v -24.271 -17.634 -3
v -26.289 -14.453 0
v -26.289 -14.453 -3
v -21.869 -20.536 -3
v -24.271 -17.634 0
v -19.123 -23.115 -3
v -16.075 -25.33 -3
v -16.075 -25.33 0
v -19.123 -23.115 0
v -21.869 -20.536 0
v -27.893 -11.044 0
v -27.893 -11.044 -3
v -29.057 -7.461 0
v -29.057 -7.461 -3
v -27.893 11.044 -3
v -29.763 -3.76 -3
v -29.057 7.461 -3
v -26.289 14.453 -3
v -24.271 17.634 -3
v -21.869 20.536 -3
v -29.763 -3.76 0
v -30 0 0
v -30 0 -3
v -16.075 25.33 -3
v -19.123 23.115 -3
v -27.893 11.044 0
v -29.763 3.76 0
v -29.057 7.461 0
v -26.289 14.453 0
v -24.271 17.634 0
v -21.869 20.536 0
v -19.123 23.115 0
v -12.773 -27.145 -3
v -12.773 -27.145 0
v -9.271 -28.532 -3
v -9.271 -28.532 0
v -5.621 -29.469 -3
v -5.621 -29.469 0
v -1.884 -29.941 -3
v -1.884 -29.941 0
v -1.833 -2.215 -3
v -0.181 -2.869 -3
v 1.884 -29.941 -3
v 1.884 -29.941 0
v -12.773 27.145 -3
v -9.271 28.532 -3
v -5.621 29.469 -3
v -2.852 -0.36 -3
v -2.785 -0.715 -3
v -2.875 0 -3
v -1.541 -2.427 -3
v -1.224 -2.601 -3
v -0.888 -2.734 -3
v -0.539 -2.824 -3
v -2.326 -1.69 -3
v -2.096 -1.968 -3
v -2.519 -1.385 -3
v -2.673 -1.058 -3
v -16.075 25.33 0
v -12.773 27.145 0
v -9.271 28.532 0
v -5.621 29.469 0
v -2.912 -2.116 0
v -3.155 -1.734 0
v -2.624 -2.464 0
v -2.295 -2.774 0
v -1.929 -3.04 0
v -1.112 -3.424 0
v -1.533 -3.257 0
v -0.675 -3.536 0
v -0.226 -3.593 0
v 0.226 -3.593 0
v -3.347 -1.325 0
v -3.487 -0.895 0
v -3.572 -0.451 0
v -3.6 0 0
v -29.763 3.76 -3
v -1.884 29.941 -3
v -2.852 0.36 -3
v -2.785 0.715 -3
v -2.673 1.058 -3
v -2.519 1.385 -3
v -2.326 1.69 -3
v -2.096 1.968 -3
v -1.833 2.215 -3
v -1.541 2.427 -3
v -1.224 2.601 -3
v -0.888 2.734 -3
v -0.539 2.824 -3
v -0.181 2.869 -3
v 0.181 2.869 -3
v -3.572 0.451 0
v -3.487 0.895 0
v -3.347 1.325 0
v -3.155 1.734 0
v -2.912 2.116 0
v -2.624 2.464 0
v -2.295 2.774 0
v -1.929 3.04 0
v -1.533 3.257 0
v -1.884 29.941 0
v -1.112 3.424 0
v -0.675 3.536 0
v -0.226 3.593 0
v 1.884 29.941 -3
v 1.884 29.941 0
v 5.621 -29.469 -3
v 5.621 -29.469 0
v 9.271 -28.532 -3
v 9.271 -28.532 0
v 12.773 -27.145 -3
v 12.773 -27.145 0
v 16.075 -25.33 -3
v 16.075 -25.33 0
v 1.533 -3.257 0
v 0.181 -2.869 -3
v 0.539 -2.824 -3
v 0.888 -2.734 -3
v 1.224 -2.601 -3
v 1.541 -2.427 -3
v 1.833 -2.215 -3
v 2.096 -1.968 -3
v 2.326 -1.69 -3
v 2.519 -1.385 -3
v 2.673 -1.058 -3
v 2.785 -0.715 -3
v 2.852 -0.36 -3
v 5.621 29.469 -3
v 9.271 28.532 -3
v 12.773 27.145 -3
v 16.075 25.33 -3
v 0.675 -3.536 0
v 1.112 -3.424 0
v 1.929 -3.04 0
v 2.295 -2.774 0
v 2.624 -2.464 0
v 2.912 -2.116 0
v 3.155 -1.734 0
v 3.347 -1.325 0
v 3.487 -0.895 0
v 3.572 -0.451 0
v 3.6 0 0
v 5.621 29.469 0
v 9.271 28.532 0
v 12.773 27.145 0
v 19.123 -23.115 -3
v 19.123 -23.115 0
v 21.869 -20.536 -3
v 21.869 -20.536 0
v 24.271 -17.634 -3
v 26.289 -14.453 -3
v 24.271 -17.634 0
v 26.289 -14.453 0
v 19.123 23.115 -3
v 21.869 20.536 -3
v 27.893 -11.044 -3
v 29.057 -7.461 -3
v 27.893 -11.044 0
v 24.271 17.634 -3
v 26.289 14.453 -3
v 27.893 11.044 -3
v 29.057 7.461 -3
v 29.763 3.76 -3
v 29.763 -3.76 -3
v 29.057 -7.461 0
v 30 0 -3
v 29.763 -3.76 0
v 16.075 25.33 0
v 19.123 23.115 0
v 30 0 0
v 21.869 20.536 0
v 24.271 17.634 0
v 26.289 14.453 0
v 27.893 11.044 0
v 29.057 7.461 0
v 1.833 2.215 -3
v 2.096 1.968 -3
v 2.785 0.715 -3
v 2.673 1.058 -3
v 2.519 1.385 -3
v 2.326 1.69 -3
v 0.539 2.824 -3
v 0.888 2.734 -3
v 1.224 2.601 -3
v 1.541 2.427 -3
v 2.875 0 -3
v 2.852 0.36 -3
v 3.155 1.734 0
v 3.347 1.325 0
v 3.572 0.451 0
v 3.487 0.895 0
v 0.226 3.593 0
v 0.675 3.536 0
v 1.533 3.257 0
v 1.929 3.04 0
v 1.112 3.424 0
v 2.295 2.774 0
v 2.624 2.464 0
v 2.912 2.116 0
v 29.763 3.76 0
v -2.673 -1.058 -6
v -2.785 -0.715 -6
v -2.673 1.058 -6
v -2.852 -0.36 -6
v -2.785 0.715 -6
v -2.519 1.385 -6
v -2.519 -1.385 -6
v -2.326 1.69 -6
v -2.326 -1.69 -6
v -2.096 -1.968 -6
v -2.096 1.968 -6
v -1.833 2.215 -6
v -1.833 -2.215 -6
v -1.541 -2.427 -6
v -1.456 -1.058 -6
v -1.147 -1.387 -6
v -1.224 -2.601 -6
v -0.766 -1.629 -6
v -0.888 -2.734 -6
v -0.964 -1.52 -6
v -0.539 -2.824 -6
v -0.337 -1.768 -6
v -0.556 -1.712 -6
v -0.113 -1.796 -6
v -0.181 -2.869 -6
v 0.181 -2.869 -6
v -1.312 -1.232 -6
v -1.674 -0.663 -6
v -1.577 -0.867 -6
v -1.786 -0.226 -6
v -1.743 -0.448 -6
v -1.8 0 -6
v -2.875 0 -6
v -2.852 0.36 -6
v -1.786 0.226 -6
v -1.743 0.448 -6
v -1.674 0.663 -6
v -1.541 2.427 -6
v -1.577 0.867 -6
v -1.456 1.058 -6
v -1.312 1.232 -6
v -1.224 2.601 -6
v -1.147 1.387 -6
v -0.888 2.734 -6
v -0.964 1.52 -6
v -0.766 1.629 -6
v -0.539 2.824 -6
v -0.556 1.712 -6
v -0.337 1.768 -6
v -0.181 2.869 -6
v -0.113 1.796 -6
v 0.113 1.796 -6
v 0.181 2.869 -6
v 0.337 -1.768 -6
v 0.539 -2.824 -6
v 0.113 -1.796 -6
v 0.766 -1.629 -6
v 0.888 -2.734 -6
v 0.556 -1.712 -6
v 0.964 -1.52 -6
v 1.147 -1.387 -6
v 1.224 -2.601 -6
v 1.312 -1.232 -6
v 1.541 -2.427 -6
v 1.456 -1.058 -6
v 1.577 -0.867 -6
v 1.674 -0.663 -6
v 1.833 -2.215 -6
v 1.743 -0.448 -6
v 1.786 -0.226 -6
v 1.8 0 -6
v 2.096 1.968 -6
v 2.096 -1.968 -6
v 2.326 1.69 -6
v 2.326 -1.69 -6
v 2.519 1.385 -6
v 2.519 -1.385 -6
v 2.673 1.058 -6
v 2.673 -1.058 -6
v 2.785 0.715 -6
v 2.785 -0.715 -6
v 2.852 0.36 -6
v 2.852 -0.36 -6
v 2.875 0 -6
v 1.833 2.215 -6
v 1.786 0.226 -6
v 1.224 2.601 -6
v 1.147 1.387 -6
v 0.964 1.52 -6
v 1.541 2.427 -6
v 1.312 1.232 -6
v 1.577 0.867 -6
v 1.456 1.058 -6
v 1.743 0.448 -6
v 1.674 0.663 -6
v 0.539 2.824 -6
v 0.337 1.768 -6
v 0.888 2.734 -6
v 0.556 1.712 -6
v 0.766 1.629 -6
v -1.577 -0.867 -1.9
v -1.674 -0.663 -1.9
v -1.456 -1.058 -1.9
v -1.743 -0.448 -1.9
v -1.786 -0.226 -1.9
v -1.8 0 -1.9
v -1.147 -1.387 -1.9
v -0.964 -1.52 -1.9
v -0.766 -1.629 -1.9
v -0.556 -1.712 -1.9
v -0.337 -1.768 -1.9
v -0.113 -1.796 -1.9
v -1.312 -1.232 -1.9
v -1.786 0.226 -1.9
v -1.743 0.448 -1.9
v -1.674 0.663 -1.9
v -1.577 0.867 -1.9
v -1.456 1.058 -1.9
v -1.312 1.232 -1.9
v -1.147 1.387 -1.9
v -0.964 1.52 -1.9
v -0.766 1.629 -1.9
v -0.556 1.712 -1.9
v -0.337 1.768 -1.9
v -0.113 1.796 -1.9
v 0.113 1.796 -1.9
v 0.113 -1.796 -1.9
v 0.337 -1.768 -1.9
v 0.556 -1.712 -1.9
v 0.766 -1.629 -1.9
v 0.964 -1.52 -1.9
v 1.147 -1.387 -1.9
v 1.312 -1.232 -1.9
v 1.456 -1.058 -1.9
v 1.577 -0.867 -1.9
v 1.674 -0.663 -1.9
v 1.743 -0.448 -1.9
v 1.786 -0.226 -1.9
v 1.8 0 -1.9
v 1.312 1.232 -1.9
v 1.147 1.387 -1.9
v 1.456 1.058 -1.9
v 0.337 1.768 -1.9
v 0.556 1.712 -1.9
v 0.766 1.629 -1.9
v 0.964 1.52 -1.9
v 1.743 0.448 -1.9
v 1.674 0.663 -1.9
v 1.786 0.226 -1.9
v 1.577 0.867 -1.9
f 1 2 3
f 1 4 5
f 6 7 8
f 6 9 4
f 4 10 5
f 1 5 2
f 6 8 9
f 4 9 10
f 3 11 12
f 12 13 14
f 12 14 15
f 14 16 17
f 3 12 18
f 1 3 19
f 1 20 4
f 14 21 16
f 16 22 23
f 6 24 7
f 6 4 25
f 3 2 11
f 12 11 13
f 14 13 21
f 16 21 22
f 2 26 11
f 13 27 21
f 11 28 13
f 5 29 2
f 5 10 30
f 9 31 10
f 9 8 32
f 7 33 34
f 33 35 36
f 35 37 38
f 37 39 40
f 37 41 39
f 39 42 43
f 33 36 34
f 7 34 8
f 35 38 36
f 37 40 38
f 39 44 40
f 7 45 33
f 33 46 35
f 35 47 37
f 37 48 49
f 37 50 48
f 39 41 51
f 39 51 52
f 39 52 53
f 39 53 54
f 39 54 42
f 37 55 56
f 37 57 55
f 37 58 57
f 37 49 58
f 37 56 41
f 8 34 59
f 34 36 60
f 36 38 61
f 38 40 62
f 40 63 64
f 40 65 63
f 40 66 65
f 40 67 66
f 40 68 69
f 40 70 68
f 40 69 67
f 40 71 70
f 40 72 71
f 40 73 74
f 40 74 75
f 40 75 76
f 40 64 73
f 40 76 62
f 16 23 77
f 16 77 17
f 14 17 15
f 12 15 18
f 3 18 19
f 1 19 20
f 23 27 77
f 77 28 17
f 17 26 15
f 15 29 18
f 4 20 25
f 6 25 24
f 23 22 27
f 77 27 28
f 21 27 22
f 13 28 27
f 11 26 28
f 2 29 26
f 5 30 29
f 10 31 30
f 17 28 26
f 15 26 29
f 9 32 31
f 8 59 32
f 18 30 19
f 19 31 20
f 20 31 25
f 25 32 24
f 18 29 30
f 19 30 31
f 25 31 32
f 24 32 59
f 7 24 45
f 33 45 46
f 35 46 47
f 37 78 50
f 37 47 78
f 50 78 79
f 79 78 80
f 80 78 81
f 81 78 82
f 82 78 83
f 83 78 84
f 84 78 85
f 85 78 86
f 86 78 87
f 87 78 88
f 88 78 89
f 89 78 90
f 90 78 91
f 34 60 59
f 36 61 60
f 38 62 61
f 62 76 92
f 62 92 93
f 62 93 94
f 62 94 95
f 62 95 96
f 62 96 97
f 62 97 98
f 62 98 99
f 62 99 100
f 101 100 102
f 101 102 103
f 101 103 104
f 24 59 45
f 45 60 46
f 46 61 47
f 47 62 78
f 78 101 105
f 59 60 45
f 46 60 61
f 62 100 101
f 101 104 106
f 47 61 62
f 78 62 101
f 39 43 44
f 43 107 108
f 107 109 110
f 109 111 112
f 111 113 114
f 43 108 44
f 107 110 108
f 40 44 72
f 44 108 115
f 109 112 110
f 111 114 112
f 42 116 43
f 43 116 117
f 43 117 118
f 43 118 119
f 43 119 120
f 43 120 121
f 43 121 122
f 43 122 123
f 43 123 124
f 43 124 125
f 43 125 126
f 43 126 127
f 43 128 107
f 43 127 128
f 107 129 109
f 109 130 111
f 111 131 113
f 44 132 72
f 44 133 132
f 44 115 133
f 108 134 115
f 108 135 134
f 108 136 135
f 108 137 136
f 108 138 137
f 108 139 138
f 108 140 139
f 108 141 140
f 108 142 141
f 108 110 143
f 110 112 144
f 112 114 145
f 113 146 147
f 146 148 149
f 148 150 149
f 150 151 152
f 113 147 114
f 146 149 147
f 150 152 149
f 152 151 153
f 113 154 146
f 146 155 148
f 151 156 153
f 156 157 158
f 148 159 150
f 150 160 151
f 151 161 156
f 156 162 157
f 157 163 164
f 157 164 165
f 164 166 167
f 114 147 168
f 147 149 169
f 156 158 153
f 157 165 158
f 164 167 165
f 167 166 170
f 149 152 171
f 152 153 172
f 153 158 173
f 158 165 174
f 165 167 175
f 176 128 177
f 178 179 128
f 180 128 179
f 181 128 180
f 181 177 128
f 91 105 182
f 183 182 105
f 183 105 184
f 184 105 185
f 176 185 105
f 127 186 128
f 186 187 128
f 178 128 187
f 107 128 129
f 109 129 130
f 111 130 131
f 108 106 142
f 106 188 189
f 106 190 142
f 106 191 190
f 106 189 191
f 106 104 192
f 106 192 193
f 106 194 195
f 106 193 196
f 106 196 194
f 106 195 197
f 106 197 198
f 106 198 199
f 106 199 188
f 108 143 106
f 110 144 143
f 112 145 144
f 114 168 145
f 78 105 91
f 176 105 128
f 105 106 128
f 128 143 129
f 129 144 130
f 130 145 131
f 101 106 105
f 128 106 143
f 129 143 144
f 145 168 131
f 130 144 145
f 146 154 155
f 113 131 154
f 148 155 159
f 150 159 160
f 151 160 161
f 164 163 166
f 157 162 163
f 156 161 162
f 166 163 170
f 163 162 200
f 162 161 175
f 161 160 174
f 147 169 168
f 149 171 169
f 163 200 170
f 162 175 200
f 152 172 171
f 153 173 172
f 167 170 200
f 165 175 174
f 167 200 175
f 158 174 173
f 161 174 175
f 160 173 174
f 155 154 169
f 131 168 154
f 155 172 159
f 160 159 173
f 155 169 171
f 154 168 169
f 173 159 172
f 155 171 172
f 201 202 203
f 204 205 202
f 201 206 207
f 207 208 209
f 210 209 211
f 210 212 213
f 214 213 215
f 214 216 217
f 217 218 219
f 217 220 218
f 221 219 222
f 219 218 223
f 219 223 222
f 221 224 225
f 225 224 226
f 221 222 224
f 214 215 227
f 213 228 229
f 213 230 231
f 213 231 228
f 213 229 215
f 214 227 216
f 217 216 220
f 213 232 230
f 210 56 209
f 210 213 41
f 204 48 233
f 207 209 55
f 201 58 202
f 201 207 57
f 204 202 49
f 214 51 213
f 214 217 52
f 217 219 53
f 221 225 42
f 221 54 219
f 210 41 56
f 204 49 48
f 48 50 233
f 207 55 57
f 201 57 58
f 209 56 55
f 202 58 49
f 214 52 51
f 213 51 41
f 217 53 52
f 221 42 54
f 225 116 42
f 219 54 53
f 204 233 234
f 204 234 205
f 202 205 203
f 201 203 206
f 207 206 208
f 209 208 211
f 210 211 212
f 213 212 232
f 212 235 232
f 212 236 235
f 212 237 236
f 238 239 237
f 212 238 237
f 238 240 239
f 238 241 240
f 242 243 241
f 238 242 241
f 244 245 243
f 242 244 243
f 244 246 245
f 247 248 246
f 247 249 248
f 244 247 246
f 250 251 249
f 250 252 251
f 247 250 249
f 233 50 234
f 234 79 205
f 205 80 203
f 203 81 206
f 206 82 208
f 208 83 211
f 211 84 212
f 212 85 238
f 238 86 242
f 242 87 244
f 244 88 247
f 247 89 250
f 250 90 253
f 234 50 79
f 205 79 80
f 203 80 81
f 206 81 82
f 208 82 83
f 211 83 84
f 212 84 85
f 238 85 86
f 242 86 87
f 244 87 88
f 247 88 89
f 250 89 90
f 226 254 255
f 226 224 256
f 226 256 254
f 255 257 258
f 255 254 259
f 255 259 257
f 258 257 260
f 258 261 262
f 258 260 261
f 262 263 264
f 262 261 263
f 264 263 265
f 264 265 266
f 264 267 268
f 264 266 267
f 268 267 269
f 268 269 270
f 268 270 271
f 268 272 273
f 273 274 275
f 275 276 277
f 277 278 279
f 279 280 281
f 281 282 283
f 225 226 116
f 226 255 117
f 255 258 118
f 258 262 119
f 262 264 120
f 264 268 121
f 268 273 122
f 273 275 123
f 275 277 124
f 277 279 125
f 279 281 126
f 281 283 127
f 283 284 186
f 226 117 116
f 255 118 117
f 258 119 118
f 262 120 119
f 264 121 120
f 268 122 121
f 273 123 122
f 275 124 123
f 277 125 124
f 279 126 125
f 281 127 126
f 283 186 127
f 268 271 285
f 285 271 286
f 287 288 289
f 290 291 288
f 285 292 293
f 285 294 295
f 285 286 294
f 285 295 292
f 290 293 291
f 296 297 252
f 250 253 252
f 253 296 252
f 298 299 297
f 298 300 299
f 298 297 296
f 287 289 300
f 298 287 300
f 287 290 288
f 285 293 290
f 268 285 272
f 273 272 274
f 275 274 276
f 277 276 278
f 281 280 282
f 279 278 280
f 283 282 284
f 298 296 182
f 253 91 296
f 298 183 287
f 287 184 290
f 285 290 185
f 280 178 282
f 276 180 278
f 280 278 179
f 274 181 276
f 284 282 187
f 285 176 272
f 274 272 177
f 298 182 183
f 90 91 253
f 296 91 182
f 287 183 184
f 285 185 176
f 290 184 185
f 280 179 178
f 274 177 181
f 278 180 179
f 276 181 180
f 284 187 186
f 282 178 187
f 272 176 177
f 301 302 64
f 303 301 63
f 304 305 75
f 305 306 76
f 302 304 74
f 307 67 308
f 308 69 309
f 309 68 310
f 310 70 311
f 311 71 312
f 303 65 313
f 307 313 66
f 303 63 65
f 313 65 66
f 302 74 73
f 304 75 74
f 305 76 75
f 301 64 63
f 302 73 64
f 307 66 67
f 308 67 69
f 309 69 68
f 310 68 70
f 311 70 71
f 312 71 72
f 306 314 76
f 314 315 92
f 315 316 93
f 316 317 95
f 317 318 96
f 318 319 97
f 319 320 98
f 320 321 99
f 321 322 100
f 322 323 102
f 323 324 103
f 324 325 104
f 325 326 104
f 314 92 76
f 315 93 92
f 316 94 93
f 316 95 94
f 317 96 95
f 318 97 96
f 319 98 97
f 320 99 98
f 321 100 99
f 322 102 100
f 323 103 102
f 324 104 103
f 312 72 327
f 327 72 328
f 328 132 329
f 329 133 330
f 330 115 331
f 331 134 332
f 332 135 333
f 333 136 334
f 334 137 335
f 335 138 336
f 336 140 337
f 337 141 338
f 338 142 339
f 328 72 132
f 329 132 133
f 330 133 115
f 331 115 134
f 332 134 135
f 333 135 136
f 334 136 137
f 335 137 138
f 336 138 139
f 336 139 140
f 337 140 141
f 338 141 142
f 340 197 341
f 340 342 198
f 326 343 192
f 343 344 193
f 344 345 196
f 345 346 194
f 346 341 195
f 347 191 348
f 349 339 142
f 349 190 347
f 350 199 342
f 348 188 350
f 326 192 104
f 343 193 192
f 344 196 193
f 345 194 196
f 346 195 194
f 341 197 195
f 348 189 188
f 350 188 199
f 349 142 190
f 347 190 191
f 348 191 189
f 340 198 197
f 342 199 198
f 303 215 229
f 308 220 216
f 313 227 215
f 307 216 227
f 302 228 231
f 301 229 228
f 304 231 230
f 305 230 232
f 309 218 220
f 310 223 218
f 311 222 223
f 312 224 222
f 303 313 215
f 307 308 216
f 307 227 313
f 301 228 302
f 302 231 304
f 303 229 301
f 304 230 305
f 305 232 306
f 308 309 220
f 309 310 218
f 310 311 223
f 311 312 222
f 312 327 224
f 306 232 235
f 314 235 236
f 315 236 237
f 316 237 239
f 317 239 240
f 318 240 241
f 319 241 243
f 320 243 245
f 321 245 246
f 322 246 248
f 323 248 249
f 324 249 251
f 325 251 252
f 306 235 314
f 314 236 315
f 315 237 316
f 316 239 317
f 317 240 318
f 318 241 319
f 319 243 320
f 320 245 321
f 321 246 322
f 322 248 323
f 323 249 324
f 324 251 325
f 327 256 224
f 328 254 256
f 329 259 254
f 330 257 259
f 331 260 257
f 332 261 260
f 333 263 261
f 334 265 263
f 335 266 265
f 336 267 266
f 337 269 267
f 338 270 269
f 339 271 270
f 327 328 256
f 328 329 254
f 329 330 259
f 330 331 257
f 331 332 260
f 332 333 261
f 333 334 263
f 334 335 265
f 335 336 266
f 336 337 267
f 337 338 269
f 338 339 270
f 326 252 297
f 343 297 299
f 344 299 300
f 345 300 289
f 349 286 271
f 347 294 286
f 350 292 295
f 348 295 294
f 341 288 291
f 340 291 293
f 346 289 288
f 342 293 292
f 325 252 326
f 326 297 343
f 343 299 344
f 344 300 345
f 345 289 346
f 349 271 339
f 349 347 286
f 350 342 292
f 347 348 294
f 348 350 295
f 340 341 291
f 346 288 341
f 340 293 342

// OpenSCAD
$fn = 50;

difference() {
	union() {
		translate(v = [0, 0, -3.0]) {
			cylinder(h = 3, r = 30.0);
		}
		#translate(v = [0, 0, -6.0]) {
			cylinder(h = 6, r = 2.875);
		}
	}
	union() {
		translate(v = [0, 0, 0]) {
			rotate(a = [0, 0, 0]) {
				difference() {
					union() {
						translate(v = [0, 0, -6.0]) {
							cylinder(h = 6, r = 1.5);
						}
						translate(v = [0, 0, -1.9]) {
							cylinder(h = 1.9, r1 = 1.8, r2 = 3.6);
						}
						translate(v = [0, 0, -6.0]) {
							cylinder(h = 6, r = 1.8);
						}
						translate(v = [0, 0, -6.0]) {
							cylinder(h = 6, r = 1.5);
						}
					}
					union();
				}
			}
		}
	}
}
